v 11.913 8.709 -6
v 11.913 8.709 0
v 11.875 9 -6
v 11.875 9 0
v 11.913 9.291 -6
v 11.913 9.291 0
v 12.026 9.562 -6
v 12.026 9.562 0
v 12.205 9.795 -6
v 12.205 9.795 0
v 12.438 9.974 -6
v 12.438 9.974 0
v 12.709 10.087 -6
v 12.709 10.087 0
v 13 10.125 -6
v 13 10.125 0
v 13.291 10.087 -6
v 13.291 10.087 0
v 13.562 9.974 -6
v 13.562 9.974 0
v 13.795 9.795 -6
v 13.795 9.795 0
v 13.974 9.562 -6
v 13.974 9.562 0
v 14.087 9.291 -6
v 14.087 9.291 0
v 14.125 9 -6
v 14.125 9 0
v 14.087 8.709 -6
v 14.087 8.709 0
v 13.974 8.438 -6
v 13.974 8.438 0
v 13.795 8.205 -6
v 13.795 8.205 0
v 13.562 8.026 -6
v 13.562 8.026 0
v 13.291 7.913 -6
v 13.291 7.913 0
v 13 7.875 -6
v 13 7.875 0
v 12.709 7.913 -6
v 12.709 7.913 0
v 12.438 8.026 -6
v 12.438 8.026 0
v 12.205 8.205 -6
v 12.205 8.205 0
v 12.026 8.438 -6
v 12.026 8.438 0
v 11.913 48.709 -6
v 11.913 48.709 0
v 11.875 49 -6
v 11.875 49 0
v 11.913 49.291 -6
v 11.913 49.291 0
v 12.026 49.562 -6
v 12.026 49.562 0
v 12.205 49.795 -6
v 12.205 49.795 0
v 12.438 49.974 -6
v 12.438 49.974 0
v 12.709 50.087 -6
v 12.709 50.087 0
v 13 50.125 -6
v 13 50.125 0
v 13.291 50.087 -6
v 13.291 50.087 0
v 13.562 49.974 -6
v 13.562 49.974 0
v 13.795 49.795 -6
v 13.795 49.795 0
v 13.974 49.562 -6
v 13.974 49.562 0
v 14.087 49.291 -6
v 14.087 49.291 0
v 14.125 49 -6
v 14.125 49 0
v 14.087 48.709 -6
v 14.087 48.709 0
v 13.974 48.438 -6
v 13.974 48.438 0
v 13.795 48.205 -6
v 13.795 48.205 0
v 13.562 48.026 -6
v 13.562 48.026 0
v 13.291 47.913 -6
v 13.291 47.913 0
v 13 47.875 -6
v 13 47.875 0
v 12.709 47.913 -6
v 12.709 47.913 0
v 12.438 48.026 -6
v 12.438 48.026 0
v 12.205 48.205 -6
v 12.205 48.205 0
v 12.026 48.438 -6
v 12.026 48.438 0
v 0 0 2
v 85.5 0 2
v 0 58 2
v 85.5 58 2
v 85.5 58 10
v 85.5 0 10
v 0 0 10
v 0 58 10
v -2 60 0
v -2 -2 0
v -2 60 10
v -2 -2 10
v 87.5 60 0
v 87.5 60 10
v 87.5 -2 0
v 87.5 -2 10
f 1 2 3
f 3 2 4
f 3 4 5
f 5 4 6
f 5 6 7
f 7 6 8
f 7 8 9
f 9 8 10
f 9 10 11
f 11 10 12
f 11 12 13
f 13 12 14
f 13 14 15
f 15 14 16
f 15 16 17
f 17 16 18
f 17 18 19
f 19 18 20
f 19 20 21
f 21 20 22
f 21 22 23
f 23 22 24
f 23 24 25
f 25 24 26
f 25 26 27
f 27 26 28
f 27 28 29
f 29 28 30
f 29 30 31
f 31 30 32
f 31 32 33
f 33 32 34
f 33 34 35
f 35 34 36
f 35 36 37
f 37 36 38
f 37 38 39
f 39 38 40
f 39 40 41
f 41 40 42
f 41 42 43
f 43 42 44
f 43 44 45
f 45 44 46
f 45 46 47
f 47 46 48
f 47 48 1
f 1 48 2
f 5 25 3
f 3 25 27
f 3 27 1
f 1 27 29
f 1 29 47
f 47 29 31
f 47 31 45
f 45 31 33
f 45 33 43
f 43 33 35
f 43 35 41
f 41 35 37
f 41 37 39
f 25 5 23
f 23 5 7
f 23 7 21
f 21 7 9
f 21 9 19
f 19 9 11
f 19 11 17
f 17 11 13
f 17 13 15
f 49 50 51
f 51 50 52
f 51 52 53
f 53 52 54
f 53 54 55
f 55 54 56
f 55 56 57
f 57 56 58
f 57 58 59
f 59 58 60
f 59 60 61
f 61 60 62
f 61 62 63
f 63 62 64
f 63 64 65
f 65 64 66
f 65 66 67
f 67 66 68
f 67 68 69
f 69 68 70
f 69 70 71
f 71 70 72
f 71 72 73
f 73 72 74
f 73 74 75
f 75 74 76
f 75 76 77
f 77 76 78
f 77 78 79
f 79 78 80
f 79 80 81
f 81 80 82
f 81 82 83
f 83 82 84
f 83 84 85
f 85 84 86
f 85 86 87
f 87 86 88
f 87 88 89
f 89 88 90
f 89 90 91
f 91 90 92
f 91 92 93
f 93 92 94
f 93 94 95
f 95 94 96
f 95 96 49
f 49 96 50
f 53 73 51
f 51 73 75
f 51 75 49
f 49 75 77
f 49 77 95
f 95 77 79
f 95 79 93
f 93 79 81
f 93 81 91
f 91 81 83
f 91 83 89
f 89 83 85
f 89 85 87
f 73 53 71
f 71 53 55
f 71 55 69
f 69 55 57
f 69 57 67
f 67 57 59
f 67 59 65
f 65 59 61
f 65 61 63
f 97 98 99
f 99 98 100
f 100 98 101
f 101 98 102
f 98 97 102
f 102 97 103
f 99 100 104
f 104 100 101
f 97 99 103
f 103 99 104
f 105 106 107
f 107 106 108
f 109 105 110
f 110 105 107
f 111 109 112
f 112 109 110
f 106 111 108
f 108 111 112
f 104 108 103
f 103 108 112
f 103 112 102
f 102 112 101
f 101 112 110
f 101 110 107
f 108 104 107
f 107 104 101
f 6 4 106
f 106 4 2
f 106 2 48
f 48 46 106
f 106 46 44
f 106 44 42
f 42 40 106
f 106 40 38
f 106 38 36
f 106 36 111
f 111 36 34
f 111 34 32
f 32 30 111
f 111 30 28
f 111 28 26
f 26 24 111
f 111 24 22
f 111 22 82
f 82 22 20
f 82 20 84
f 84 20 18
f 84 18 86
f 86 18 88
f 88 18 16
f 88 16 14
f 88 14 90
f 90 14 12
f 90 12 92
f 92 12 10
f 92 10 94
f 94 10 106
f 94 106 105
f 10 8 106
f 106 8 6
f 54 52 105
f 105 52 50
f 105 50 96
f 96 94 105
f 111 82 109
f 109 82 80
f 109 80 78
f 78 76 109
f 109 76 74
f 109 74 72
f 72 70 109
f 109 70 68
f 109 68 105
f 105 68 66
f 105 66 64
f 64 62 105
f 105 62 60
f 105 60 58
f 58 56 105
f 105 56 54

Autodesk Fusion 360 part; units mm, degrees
sketch "Sketch1" plane through (0, 0, 0) normal (0, 0, 1) x (1, 0, 0)
  line L0 (0, 0) -> (85.5, 0)
  line L1 (85.5, 0) -> (85.5, 58)
  line L2 (85.5, 58) -> (0, 58)
  line L3 (0, 58) -> (0, 0)
  line L4 (87.5, -2) -> (87.5, 60)
  line L5 (87.5, 60) -> (-2, 60)
  line L6 (-2, 60) -> (-2, -2)
  line L7 (-2, -2) -> (87.5, -2)
  dimension "d1" = 85.5
  dimension "d2" = 58
  dimension "d3" = 2
extrude "Extrude1" add sketch "Sketch1" along normal blind 10
sketch "Sketch2" plane through (0, 0, 0) normal (0, 0, 1) x (1, 0, 0)
  line L0 (0, 0) -> (85.5, 0)
  line L1 (85.5, 0) -> (85.5, 58)
  line L2 (85.5, 58) -> (0, 58)
  line L3 (0, 58) -> (0, 0)
  point P0 (85.5, 58)
extrude "Extrude2" add sketch "Sketch2" along normal blind 2
sketch "Sketch3" plane through (0, 0, 0) normal (0, 0, -1) x (1, 0, 0)
  line L0 (87.5, 2) -> (-2, 2)
  line L1 (-2, 2) -> (-2, -60)
  line L2 (-2, -60) -> (87.5, -60)
  line L3 (87.5, -60) -> (87.5, 2)
  line L4 (-2, -29) -> (87.5, -29)
  circle A0 centre (13, -9) radius 1.125
  circle A1 centre (13, -49) radius 1.125
  dimension "d8" = 2.25
  dimension "d9" = 2.25
  dimension "d10" = 20
  dimension "d11" = 20
  dimension "d14" = 15
extrude "Extrude3" add sketch "Sketch3" along normal blind 6 contours A0 | A1
sketch "Sketch4" plane through (0, 0, 0) normal (0, 0, -1) x (1, 0, 0)
  circle A0 centre (13, -9) radius 1.125
  circle A1 centre (13, -49) radius 1.125
  line L0 (87.5, 2) -> (-2, 2)
  line L1 (-2, 2) -> (-2, -60)
  line L2 (-2, -60) -> (87.5, -60)
  line L3 (87.5, -60) -> (87.5, 2)
